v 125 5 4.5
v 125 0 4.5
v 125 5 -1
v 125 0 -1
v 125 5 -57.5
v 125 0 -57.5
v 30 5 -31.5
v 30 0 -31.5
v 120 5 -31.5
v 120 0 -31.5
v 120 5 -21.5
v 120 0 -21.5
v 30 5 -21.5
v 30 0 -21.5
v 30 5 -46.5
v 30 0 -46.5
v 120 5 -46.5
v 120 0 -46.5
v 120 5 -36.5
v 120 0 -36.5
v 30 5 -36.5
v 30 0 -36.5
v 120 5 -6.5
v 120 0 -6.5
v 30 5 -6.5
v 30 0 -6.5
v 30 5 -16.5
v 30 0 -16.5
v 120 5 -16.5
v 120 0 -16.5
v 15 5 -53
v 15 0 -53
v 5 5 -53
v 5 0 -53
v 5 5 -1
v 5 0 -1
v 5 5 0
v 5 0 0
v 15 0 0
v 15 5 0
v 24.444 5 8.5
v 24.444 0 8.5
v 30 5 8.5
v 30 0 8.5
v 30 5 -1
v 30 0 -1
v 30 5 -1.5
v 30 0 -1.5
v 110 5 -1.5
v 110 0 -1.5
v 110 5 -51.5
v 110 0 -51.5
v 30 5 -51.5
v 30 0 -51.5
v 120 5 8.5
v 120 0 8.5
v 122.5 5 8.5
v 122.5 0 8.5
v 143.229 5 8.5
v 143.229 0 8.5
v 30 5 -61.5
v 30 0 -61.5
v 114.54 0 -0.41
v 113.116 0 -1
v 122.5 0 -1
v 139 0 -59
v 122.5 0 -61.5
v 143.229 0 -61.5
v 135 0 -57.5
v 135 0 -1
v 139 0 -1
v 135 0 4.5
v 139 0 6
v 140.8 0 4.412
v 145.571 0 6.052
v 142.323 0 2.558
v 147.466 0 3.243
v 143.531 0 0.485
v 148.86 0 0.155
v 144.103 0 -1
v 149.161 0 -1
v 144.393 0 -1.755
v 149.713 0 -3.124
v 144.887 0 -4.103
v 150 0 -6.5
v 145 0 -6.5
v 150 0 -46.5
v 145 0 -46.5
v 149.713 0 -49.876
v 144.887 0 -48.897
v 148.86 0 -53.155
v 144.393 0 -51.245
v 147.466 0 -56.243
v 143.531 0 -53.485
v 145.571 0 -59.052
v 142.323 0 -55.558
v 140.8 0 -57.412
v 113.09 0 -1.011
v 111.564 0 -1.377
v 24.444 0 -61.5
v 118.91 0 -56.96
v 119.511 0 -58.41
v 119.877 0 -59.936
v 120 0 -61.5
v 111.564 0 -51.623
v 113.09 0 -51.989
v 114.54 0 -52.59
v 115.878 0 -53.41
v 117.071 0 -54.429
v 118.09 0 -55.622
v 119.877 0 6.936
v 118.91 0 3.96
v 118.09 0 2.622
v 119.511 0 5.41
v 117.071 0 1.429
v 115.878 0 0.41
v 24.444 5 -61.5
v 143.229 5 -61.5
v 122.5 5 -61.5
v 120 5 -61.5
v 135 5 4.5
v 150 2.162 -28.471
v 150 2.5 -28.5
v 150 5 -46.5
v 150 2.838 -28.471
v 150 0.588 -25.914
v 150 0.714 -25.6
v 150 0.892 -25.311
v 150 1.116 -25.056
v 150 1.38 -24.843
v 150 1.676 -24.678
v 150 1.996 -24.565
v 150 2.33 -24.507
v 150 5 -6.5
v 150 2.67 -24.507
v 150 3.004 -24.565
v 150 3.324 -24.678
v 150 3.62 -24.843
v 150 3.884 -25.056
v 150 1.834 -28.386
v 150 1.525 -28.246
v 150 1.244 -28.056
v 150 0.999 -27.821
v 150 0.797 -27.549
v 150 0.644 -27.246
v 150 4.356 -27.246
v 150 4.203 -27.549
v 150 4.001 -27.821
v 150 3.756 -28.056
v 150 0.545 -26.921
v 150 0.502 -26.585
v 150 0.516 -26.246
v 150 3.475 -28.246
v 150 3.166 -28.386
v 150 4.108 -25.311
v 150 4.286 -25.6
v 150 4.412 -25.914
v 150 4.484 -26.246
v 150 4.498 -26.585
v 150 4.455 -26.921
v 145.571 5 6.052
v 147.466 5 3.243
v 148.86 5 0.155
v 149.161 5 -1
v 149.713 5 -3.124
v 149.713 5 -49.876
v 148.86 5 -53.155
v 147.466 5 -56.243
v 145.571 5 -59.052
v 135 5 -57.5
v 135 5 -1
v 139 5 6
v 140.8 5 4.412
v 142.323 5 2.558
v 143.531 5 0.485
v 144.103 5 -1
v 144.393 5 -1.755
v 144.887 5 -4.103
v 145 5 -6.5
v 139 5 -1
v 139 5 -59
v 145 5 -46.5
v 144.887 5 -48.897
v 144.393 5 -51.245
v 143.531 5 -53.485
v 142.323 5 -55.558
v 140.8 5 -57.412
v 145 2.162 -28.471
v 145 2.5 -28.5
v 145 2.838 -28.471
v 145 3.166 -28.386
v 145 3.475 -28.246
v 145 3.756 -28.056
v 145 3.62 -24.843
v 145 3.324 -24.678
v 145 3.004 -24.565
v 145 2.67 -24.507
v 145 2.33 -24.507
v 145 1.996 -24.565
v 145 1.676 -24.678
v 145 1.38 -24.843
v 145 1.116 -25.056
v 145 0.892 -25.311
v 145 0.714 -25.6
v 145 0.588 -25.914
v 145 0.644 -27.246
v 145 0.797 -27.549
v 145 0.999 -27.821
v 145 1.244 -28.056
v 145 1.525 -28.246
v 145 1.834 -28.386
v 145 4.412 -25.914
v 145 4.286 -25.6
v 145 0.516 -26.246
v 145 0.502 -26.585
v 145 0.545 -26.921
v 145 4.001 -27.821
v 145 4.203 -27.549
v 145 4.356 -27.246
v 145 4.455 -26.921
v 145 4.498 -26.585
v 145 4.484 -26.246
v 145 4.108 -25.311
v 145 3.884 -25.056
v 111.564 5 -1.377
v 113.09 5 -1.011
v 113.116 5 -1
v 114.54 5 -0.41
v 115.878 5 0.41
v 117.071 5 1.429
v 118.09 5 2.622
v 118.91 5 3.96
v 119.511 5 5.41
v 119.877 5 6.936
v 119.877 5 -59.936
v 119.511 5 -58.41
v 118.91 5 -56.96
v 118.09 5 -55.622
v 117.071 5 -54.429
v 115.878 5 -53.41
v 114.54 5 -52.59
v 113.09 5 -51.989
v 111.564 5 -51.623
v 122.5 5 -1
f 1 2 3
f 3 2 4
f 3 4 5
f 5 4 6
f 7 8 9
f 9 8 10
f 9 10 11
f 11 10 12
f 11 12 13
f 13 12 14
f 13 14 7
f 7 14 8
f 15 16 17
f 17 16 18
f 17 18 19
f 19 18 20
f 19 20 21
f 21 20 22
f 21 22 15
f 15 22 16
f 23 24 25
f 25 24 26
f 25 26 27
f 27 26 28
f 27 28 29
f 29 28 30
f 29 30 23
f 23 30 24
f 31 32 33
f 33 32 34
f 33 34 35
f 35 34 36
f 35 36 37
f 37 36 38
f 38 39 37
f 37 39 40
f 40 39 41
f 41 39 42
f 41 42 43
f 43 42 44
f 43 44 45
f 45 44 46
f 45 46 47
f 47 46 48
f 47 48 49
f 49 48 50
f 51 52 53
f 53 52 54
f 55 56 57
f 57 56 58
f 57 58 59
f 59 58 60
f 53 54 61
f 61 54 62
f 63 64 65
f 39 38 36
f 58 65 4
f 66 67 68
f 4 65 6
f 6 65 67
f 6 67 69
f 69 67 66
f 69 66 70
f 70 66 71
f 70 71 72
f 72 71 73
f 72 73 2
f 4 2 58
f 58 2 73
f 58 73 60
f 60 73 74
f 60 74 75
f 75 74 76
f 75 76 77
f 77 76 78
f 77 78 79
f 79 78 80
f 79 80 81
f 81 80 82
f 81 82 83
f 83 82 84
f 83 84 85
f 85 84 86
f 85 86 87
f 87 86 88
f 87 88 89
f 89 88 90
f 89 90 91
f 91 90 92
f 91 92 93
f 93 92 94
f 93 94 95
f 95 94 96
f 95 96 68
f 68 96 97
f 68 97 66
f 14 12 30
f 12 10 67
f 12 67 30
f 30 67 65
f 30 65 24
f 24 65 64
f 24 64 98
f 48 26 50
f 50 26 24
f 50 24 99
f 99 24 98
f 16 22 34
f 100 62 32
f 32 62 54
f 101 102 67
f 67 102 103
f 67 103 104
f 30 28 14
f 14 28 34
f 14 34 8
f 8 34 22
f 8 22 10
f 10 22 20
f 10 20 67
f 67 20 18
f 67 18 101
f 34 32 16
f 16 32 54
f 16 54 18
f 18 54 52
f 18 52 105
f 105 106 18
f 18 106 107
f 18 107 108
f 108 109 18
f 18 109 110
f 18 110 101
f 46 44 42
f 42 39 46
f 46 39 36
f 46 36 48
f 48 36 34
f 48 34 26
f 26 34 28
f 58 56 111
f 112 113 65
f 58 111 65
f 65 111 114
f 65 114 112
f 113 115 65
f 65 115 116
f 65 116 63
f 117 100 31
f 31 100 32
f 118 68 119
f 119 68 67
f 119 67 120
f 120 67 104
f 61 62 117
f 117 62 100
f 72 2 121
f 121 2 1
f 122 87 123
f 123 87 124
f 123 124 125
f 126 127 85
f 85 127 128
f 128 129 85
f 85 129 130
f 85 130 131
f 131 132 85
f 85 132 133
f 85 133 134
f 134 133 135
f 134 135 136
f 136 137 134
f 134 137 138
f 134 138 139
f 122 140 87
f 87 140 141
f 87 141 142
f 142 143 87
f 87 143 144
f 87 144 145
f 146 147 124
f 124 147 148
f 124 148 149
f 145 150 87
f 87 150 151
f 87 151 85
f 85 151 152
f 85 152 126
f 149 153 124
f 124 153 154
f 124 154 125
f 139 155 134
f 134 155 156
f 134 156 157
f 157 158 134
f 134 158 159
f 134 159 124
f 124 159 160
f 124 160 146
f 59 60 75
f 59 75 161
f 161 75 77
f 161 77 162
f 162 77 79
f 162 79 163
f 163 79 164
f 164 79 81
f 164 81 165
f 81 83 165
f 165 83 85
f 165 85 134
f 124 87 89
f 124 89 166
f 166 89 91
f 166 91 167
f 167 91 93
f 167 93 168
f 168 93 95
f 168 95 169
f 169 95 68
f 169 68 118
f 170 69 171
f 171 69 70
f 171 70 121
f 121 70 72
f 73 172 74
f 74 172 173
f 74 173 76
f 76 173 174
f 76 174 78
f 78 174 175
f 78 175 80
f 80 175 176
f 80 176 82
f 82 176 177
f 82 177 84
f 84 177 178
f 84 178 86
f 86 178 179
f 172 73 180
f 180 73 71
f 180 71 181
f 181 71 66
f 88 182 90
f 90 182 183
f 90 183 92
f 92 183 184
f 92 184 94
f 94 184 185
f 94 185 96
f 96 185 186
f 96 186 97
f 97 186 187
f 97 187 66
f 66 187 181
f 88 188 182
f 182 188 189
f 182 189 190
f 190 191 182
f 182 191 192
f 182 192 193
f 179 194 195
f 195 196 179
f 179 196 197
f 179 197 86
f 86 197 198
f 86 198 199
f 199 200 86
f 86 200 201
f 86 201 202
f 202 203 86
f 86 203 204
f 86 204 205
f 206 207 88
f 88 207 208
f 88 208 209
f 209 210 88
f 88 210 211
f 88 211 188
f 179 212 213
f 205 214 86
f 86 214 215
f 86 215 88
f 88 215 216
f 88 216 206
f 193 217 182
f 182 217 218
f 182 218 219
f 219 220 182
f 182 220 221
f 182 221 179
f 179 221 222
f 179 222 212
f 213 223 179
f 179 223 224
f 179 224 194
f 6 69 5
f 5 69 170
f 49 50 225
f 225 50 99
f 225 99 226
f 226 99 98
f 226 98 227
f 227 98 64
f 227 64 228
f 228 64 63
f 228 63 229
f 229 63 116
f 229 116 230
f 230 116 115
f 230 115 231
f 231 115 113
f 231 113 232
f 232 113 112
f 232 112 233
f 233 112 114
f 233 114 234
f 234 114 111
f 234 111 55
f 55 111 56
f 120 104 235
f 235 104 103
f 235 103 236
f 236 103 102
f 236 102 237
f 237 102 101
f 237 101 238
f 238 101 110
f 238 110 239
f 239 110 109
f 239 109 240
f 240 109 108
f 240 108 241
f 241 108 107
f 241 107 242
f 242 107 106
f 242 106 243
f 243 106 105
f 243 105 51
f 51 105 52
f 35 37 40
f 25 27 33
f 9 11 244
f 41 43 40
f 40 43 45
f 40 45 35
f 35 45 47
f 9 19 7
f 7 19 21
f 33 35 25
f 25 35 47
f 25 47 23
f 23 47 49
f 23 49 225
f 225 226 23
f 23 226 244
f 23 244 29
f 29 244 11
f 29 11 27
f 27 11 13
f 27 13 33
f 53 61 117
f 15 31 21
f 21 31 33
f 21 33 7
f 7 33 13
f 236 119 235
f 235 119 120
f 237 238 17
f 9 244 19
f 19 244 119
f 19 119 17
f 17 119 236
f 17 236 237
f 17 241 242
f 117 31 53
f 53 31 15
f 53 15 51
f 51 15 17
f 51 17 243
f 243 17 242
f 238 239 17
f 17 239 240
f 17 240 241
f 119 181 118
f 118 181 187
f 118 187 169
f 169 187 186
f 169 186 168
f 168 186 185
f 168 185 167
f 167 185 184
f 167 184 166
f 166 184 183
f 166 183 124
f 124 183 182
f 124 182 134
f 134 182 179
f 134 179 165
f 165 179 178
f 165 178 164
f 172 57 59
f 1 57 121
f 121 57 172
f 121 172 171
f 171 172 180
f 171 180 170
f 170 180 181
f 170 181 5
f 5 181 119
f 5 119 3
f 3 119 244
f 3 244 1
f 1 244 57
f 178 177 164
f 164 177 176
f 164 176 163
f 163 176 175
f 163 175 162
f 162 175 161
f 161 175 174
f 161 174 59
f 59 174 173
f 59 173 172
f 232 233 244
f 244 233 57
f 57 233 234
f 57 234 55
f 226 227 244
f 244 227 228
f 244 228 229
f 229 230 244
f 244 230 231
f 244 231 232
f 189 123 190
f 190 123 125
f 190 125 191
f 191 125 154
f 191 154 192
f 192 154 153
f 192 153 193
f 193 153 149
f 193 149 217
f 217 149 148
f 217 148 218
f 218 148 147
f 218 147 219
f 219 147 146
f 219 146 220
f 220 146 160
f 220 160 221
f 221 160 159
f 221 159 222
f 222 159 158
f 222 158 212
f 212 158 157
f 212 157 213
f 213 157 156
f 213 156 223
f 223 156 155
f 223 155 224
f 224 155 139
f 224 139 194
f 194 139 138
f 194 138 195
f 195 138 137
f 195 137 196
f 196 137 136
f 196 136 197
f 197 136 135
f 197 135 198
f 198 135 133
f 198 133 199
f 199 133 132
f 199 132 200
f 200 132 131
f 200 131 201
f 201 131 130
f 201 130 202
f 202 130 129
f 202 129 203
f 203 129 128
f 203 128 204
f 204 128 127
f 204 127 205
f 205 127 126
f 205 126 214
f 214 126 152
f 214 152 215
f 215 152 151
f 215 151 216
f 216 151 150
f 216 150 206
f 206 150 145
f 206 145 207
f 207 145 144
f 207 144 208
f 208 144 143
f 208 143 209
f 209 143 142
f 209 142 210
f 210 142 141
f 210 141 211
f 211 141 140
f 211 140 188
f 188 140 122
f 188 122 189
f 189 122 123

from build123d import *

# Parameters (mm, degrees)
Y_KSEKLIK_EKSTR_ZYON1_DEPTH = 7
IZIM2_R                     = 1.5
KES_EKSTR_ZYON1_DEPTH       = 7
PAH1_SIZE                   = 2.5
IZIM3_R                     = 2
KES_EKSTR_ZYON2_DEPTH       = 10
KES_EKSTR_ZYON3_START       = -10
IZIM4_R                     = 2
KES_EKSTR_ZYON3_DEPTH       = 10
RADYUS1_R                   = 20
IZIM5_W                     = 90
IZIM5_H                     = 10
IZIM5_W_2                   = 10
IZIM5_H_2                   = 70
KES_EKSTR_ZYON4_DEPTH       = 10
RADYUS2_R                   = 4
KES_EKSTR_ZYON5_DEPTH       = 10
IZIM8_W                     = 5
IZIM8_H                     = 53
KES_EKSTR_ZYON6_DEPTH       = 10
IZIM9_W                     = 8.724341423
IZIM9_H                     = 2.178581573
IZIM9_W_2                   = 9.164333206
Y_KSEKLIK_EKSTR_ZYON2_DEPTH = 10
IZIM10_W                    = 140
IZIM10_H                    = 10
KES_EKSTR_ZYON7_DEPTH       = 10
IZIM11_W                    = 10
IZIM11_H                    = 4
Y_KSEKLIK_EKSTR_ZYON3_DEPTH = 7
RADYUS3_R                   = 10
IZIM12_W                    = 4
IZIM12_H                    = 7
Y_KSEKLIK_EKSTR_ZYON4_DEPTH = 7
RADYUS4_R                   = 5
IZIM13_R                    = 1.5
KES_EKSTR_ZYON8_DEPTH       = 7
PAH2_SIZE                   = 1.5
RADYUS5_R                   = 2
IZIM14_W                    = 144.535934645
IZIM14_H                    = 70
KES_EKSTR_ZYON9_DEPTH       = 2
RADYUS6_R                   = 2
IZIM16_R                    = 2
KES_EKSTR_ZYON11_DEPTH      = 7
KES_EKSTR_ZYON12_DEPTH      = 10


# Some blends are built 0.0001 mm under size
with BuildPart() as part:
    # Çizim1 → Yükseklik-Ekstrüzyon1 (new body)
    with BuildSketch(Plane(origin=(0, 0, 0), x_dir=(1, 0, 0), z_dir=(0, 1, 0))):
        Polygon((0, 0), (0, 53), (15, 53), (30, 66.5), (150, 66.5), (150, -13.5), (30, -13.5), (15, 0), align=None)
    extrude(amount=Y_KSEKLIK_EKSTR_ZYON1_DEPTH)

    # Çizim2 → Kes-Ekstrüzyon1 (cut)
    with BuildSketch(Plane(origin=(0, 7, 0), x_dir=(1, 0, 0), z_dir=(0, 1, 0))):
        with Locations(Location((2.5, 41.25, 0), (0, 0, 270))):
            Circle(IZIM2_R)
        with Locations(Location((2.5, 11.75, 0), (0, 0, 270))):
            Circle(IZIM2_R)
    extrude(amount=-KES_EKSTR_ZYON1_DEPTH, mode=Mode.SUBTRACT)

    # Pah1
    # the kernel refuses this chamfer: 2.5 mm, written as the material it takes off along each edge
    with BuildSketch(Plane(origin=(2.5, 7, -41.25), x_dir=(0, 0, 1), z_dir=(-1, 0, 0))) as pah1_piece_1:
        Polygon((1.5 + PAH1_SIZE, 0), (1.5, -PAH1_SIZE), (1.5, 0), align=None)
    revolve(axis=Axis((2.5, 7, -41.25), (0, 1, 0)), mode=Mode.SUBTRACT)
    with BuildSketch(Plane(origin=(2.5, 7, -11.75), x_dir=(0, 0, 1), z_dir=(-1, 0, 0))) as pah1_piece_2:
        Polygon((1.5 + PAH1_SIZE, 0), (1.5, -PAH1_SIZE), (1.5, 0), align=None)
    revolve(axis=Axis((2.5, 7, -11.75), (0, 1, 0)), mode=Mode.SUBTRACT)

    # Çizim3 → Kes-Ekstrüzyon2 (cut)
    with BuildSketch(Plane.XY.offset(13.5)):
        with Locations((46.24, 3.5)):
            Circle(IZIM3_R)
    extrude(amount=-KES_EKSTR_ZYON2_DEPTH, mode=Mode.SUBTRACT)

    # Çizim4 → Kes-Ekstrüzyon3 (cut)
    with BuildSketch(Plane(origin=(0, 0, -66.5), x_dir=(-1, 0, 0), z_dir=(0, 0, -1)).offset(KES_EKSTR_ZYON3_START)):
        with Locations(Location((-46.24, 3.5, 0), (0, 0, 180))):
            Circle(IZIM4_R)
    extrude(amount=KES_EKSTR_ZYON3_DEPTH, mode=Mode.SUBTRACT)

    # Radyus1
    radyus1_edges = [part.edges().sort_by_distance(p)[0] for p in [
        (150, 3.5, -66.5),
        (150, 3.5, 13.5),
    ]]
    fillet(radyus1_edges, radius=RADYUS1_R)

    # Çizim5 → Kes-Ekstrüzyon4 (cut)
    with BuildSketch(Plane(origin=(0, 7, 0), x_dir=(1, 0, 0), z_dir=(0, 1, 0))):
        with Locations((75, -3.5)):
            Rectangle(IZIM5_W, IZIM5_H)
        with Locations((75, 26.5)):
            Rectangle(IZIM5_W, IZIM5_H)
        with Locations((75, 41.5)):
            Rectangle(IZIM5_W, IZIM5_H)
        with Locations((75, 56.5)):
            Rectangle(IZIM5_W, IZIM5_H)
        with Locations((75, 11.5)):
            Rectangle(IZIM5_W, IZIM5_H)
        with Locations((130, 26.5)):
            Rectangle(IZIM5_W_2, IZIM5_H_2)
    extrude(amount=-KES_EKSTR_ZYON4_DEPTH, mode=Mode.SUBTRACT)

    # Radyus2
    radyus2_edges = [part.edges().sort_by_distance(p)[0] for p in [
        (135, 3.5, -61.5),
        (135, 3.5, 8.5),
    ]]
    fillet(radyus2_edges, radius=RADYUS2_R)

    # Çizim6 → Kes-Ekstrüzyon5 (cut)
    with BuildSketch(Plane(origin=(0, 7, 0), x_dir=(1, 0, 0), z_dir=(0, 1, 0))):
        with BuildLine():
            Line((139, -6), (139, 59))
            ThreePointArc((139, 59), (143.530979443, 53.484870133), (145, 46.5))
            Line((145, 46.5), (145, 6.5))
            ThreePointArc((145, 6.5), (143.530979443, -0.484870133), (139, -6))
        make_face()
    extrude(amount=-KES_EKSTR_ZYON5_DEPTH, mode=Mode.SUBTRACT)

    # Çizim8 → Kes-Ekstrüzyon6 (cut)
    with BuildSketch(Plane(origin=(0, 7, 0), x_dir=(1, 0, 0), z_dir=(0, 1, 0))):
        with Locations((2.5, 26.5)):
            Rectangle(IZIM8_W, IZIM8_H)
    extrude(amount=-KES_EKSTR_ZYON6_DEPTH, mode=Mode.SUBTRACT)

    # Çizim9 → Yükseklik-Ekstrüzyon2 (add)
    with BuildSketch(Plane.ZY.offset(-5)):
        with Locations((-12.430411948, 5.910709214)):
            Rectangle(IZIM9_W, IZIM9_H)
        with Locations((-41.247168871, 5.910709214)):
            Rectangle(IZIM9_W_2, IZIM9_H)
    extrude(amount=-Y_KSEKLIK_EKSTR_ZYON2_DEPTH)

    # Çizim10 → Kes-Ekstrüzyon7 (cut)
    with BuildSketch(Plane(origin=(0, 7, 0), x_dir=(1, 0, 0), z_dir=(0, 1, 0))):
        with Locations((85, -13.5)):
            Rectangle(IZIM10_W, IZIM10_H)
        with Locations((85, 66.5)):
            Rectangle(IZIM10_W, IZIM10_H)
    extrude(amount=-KES_EKSTR_ZYON7_DEPTH, mode=Mode.SUBTRACT)


with BuildPart() as kes_ekstr_zyon7_piece_1:
    # of the separate pieces the step leaves, piece 1, a body of its own (kes_ekstr_zyon7_pieces)
    add(part.part.solids().sort_by_distance((24.444444444, 0, 8.5))[0])



with BuildPart() as kes_ekstr_zyon7_piece_2:
    # of the separate pieces the step leaves, piece 2, a body of its own (kes_ekstr_zyon7_pieces)
    add(part.part.solids().sort_by_distance((143.228756555, 0, 8.5))[0])


with BuildPart() as kes_ekstr_zyon7_piece_1_1:
    add(kes_ekstr_zyon7_piece_1.part)

    add(kes_ekstr_zyon7_piece_2.part)  # Yükseklik-Ekstrüzyon3 merges Kes-Ekstrüzyon7 piece 2
    # Çizim11 → Yükseklik-Ekstrüzyon3 (add)
    with BuildSketch(Plane(origin=(0, 7, 0), x_dir=(1, 0, 0), z_dir=(0, 1, 0))):
        with Locations((130, -6.5)):
            Rectangle(IZIM11_W, IZIM11_H)
        with Locations((130, 59.5)):
            Rectangle(IZIM11_W, IZIM11_H)
    extrude(amount=-Y_KSEKLIK_EKSTR_ZYON3_DEPTH)

    # Radyus3
    radyus3_edges = [kes_ekstr_zyon7_piece_1_1.edges().sort_by_distance(p)[0] for p in [
        (120, 3.5, -1.5),
        (120, 3.5, -51.5),
    ]]
    fillet(radyus3_edges, radius=RADYUS3_R - 0.0001)  # a hair under: the kernel refuses the full size

    # Çizim12 → Yükseklik-Ekstrüzyon4 (add)
    with BuildSketch(Plane(origin=(0, 7, 0), x_dir=(1, 0, 0), z_dir=(0, 1, 0))):
        with Locations((7, 15)):
            Rectangle(IZIM12_W, IZIM12_H)
        with Locations((7, 38)):
            Rectangle(IZIM12_W, IZIM12_H)
    extrude(amount=Y_KSEKLIK_EKSTR_ZYON4_DEPTH)

    # Radyus4
    radyus4_edges = [kes_ekstr_zyon7_piece_1_1.edges().sort_by_distance(p)[0] for p in [
        (7, 7, -11.5),
        (7, 7, -18.5),
        (7, 7, -34.5),
        (7, 7, -41.5),
    ]]
    fillet(radyus4_edges, radius=RADYUS4_R)

    # Çizim13 → Kes-Ekstrüzyon8 (cut)
    with BuildSketch(Plane.ZY.offset(-5)):
        with Locations((-38, 10.5)):
            Circle(IZIM13_R)
        with Locations((-15, 10.5)):
            Circle(IZIM13_R)
    extrude(amount=-KES_EKSTR_ZYON8_DEPTH, mode=Mode.SUBTRACT)

    # Pah2
    pah2_edges = [kes_ekstr_zyon7_piece_1_1.edges().sort_by_distance(p)[0] for p in [
        (9, 10.5, -39.5),
        (9, 10.5, -16.5),
    ]]
    chamfer(pah2_edges, length=PAH2_SIZE)

    # Radyus5
    radyus5_edges = [kes_ekstr_zyon7_piece_1_1.edges().sort_by_distance(p)[0] for p in [
        (7, 14, -41.5),
        (7, 14, -34.5),
        (7, 14, -11.5),
        (7, 14, -18.5),
    ]]
    fillet(radyus5_edges, radius=RADYUS5_R - 0.0001)  # a hair under: the kernel refuses the full size

    # Çizim14 → Kes-Ekstrüzyon9 (cut)
    with BuildSketch(Plane(origin=(0, 7, 0), x_dir=(1, 0, 0), z_dir=(0, 1, 0))):
        with Locations((81.267967322, 26.5)):
            Rectangle(IZIM14_W, IZIM14_H)
    extrude(amount=-KES_EKSTR_ZYON9_DEPTH, mode=Mode.SUBTRACT)

    # Radyus6
    radyus6_edges = [kes_ekstr_zyon7_piece_1_1.edges().sort_by_distance(p)[0] for p in [
        (7, 7, -53),
        (7, 7, 0),
    ]]
    fillet(radyus6_edges, radius=RADYUS6_R)

    # Çizim16 → Kes-Ekstrüzyon11 (cut)
    with BuildSketch(Plane(origin=(150, 0, 0), x_dir=(0, 0, -1), z_dir=(1, 0, 0))):
        with Locations((26.5, 2.5)):
            Circle(IZIM16_R)
    extrude(amount=-KES_EKSTR_ZYON11_DEPTH, mode=Mode.SUBTRACT)

    # Çizim17 → Kes-Ekstrüzyon12 (cut)
    with BuildSketch(Plane(origin=(9, 0, 0), x_dir=(0, 0, -1), z_dir=(1, 0, 0))):
        with BuildLine():
            Line((0, 5), (53, 5))
            ThreePointArc((53, 5), (52.414213562, 6.414213562), (51, 7))
            Line((51, 7), (46.5, 7))
            ThreePointArc((46.5, 7), (42.964466094, 8.464466094), (41.5, 12))
            ThreePointArc((41.5, 12), (40.914213562, 13.414213562), (39.5, 14))
            Line((39.5, 14), (36.5, 14))
            ThreePointArc((36.5, 14), (35.085786438, 13.414213562), (34.5, 12))
            ThreePointArc((34.5, 12), (33.035533906, 8.464466094), (29.5, 7))
            Line((29.5, 7), (23.5, 7))
            ThreePointArc((23.5, 7), (19.964466094, 8.464466094), (18.5, 12))
            ThreePointArc((18.5, 12), (17.914213562, 13.414213562), (16.5, 14))
            Line((16.5, 14), (13.5, 14))
            ThreePointArc((13.5, 14), (12.085786438, 13.414213562), (11.5, 12))
            ThreePointArc((11.5, 12), (10.035533906, 8.464466094), (6.5, 7))
            Line((6.5, 7), (2, 7))
            ThreePointArc((2, 7), (0.585786438, 6.414213562), (0, 5))
        make_face()
    extrude(amount=-KES_EKSTR_ZYON12_DEPTH, mode=Mode.SUBTRACT)


with BuildPart() as kes_ekstr_zyon12_kept_piece:
    # of the separate pieces the step leaves, the one the design keeps (kes_ekstr_zyon12_pieces_kept)
    add(kes_ekstr_zyon7_piece_1_1.part.solids().sort_by_distance((5, 5, 0))[0])


solid = kes_ekstr_zyon12_kept_piece.part
